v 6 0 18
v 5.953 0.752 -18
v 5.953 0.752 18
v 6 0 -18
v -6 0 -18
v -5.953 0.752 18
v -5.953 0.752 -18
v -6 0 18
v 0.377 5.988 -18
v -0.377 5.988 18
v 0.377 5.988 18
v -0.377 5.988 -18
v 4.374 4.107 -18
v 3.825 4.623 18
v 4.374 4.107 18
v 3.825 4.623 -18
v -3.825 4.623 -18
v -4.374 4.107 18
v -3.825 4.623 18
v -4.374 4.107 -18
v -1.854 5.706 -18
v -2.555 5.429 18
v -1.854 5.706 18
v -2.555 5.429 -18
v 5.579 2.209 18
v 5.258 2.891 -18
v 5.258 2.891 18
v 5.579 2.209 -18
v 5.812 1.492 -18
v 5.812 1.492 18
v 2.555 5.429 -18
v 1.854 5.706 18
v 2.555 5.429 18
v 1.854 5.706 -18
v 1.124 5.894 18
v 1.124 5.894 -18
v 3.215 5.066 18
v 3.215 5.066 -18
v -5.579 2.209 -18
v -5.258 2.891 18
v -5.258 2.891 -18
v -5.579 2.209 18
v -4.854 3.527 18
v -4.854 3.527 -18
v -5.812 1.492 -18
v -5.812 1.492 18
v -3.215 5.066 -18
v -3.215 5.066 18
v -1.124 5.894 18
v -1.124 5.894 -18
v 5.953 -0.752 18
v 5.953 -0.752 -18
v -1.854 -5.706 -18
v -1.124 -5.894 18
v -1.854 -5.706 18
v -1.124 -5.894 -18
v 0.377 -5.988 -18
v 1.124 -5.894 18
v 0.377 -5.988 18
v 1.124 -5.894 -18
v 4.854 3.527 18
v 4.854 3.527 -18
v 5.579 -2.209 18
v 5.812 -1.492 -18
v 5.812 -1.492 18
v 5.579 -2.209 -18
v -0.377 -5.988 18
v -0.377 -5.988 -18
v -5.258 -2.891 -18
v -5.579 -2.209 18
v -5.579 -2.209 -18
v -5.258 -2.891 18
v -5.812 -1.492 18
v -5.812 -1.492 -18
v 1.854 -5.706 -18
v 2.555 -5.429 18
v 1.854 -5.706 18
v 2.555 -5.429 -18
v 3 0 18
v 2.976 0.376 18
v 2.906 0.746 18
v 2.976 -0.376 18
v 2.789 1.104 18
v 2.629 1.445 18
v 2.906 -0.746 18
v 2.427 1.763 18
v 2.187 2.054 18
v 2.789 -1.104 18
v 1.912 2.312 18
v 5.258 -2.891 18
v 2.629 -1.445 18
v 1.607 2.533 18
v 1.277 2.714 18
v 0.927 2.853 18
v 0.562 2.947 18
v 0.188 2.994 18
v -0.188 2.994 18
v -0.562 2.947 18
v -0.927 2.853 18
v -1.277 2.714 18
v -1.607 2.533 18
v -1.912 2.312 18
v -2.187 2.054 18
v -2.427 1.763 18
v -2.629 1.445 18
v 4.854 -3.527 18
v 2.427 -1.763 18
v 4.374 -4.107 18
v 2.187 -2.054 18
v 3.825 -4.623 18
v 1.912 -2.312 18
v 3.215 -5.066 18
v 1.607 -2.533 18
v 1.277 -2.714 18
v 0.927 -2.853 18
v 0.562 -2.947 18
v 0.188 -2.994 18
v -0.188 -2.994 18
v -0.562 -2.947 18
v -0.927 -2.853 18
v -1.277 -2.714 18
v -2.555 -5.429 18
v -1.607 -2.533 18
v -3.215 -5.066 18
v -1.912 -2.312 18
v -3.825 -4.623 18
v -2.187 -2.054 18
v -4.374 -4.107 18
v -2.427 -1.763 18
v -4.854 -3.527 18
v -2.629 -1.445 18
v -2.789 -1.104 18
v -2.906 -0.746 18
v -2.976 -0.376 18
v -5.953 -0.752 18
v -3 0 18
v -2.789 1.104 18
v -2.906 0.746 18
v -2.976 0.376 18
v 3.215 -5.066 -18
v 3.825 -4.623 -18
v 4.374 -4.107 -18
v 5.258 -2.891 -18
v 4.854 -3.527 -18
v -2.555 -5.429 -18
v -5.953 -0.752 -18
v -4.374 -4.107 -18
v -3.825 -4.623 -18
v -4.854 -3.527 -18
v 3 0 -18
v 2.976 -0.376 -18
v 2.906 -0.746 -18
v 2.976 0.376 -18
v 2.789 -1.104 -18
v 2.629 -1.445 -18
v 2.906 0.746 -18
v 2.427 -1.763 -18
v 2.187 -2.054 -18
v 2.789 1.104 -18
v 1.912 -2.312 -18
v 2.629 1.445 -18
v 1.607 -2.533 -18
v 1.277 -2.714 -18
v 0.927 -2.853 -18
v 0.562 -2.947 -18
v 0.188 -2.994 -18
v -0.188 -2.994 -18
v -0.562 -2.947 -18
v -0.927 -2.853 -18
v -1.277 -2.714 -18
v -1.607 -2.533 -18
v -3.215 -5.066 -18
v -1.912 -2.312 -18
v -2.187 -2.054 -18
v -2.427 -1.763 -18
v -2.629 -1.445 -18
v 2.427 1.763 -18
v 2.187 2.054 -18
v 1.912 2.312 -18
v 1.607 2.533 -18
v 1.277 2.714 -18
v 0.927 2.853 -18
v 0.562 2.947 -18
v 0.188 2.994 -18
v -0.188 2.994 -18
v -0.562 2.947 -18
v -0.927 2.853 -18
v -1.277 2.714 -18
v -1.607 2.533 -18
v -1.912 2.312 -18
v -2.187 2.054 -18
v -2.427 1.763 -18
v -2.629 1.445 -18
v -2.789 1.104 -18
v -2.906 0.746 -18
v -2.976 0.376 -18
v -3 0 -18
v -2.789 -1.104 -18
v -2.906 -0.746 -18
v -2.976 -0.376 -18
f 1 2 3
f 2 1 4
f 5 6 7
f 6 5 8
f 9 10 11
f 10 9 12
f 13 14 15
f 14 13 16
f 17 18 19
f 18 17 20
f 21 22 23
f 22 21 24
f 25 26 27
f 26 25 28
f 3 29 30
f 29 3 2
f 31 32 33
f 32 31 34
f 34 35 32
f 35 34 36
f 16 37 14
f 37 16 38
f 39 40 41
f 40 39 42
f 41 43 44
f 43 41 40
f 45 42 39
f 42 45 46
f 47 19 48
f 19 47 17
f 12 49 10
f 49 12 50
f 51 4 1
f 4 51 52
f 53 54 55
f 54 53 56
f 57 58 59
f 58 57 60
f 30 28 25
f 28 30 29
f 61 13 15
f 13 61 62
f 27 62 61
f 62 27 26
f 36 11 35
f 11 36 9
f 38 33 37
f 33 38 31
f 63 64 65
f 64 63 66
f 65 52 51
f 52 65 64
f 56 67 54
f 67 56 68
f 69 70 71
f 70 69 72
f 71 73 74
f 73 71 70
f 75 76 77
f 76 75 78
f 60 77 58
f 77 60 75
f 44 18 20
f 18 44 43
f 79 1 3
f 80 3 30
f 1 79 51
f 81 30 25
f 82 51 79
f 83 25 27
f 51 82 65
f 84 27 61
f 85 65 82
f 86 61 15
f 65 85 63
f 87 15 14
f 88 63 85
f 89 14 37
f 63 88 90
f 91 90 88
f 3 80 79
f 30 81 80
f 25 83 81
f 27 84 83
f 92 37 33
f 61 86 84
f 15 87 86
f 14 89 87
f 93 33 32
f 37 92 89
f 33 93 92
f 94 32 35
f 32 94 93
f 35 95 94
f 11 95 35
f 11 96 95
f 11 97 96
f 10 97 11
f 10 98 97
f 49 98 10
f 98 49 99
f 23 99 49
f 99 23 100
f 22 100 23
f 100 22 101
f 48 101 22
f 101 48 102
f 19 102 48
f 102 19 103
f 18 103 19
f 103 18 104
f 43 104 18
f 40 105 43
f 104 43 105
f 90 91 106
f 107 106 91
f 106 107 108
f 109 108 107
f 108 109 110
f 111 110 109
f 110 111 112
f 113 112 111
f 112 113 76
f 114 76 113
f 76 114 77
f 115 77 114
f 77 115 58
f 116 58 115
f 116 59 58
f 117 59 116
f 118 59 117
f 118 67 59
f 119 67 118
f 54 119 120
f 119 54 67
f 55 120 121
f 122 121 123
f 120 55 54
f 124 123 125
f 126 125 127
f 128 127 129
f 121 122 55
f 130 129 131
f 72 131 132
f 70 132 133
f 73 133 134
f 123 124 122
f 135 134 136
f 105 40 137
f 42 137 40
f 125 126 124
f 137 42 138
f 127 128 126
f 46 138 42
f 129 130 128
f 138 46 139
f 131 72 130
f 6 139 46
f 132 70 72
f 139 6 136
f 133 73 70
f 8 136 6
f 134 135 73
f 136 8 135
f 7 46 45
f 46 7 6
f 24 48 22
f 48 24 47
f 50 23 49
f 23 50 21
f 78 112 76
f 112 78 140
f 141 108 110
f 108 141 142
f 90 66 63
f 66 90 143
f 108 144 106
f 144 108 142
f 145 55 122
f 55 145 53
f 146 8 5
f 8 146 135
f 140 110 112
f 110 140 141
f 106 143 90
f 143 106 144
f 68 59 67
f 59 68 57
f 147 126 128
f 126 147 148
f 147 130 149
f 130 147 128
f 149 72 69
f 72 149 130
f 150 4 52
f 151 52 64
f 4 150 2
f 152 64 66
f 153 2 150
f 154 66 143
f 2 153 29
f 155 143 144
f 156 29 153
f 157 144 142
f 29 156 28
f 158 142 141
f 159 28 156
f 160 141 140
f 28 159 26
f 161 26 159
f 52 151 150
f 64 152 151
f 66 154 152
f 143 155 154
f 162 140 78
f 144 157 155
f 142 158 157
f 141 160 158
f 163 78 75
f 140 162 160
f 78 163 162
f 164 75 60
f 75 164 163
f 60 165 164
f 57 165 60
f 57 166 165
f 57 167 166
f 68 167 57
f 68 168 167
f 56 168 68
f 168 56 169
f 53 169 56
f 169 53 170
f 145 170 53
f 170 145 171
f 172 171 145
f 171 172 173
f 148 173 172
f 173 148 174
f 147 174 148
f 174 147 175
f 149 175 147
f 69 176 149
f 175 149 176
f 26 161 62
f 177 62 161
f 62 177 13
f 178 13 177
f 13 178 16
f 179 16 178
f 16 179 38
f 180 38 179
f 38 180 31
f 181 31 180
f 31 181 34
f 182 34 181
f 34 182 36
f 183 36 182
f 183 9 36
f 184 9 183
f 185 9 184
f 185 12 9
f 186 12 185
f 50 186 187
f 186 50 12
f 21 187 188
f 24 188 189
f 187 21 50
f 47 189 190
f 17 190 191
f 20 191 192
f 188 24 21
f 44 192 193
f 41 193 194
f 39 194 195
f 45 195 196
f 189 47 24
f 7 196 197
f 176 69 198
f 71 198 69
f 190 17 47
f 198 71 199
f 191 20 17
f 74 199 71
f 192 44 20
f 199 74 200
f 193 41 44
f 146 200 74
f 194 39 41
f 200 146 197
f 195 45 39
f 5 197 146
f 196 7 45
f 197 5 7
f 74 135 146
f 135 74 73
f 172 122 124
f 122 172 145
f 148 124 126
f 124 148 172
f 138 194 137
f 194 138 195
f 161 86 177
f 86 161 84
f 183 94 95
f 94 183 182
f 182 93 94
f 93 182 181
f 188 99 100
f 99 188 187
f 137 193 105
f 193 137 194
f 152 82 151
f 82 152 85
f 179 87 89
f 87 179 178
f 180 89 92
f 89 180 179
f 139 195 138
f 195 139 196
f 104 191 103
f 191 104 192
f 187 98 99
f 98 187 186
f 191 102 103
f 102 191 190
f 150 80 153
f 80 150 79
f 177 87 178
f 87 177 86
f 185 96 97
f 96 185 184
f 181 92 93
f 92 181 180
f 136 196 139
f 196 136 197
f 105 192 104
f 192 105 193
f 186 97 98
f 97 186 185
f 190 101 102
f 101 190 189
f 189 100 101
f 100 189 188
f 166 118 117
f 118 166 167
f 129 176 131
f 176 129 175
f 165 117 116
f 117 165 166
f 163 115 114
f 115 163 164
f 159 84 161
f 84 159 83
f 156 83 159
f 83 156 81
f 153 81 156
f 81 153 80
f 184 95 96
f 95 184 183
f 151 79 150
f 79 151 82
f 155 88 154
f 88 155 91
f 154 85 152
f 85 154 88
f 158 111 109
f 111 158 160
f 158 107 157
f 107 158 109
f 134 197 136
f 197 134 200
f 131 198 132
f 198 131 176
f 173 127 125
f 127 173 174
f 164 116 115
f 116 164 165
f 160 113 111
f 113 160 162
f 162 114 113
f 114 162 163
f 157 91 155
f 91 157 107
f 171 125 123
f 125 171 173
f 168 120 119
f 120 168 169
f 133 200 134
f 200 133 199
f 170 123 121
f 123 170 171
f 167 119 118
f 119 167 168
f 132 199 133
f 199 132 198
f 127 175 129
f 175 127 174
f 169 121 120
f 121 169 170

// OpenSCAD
$fn = 50;


difference() {
	union() {
		translate(v = [0, 0, -18.0000000000]) {
			cylinder(h = 36, r = 6.0000000000);
		}
	}
	union() {
		translate(v = [0, 0, -100.0000000000]) {
			cylinder(h = 200, r = 3.0000000000);
		}
	}
}
